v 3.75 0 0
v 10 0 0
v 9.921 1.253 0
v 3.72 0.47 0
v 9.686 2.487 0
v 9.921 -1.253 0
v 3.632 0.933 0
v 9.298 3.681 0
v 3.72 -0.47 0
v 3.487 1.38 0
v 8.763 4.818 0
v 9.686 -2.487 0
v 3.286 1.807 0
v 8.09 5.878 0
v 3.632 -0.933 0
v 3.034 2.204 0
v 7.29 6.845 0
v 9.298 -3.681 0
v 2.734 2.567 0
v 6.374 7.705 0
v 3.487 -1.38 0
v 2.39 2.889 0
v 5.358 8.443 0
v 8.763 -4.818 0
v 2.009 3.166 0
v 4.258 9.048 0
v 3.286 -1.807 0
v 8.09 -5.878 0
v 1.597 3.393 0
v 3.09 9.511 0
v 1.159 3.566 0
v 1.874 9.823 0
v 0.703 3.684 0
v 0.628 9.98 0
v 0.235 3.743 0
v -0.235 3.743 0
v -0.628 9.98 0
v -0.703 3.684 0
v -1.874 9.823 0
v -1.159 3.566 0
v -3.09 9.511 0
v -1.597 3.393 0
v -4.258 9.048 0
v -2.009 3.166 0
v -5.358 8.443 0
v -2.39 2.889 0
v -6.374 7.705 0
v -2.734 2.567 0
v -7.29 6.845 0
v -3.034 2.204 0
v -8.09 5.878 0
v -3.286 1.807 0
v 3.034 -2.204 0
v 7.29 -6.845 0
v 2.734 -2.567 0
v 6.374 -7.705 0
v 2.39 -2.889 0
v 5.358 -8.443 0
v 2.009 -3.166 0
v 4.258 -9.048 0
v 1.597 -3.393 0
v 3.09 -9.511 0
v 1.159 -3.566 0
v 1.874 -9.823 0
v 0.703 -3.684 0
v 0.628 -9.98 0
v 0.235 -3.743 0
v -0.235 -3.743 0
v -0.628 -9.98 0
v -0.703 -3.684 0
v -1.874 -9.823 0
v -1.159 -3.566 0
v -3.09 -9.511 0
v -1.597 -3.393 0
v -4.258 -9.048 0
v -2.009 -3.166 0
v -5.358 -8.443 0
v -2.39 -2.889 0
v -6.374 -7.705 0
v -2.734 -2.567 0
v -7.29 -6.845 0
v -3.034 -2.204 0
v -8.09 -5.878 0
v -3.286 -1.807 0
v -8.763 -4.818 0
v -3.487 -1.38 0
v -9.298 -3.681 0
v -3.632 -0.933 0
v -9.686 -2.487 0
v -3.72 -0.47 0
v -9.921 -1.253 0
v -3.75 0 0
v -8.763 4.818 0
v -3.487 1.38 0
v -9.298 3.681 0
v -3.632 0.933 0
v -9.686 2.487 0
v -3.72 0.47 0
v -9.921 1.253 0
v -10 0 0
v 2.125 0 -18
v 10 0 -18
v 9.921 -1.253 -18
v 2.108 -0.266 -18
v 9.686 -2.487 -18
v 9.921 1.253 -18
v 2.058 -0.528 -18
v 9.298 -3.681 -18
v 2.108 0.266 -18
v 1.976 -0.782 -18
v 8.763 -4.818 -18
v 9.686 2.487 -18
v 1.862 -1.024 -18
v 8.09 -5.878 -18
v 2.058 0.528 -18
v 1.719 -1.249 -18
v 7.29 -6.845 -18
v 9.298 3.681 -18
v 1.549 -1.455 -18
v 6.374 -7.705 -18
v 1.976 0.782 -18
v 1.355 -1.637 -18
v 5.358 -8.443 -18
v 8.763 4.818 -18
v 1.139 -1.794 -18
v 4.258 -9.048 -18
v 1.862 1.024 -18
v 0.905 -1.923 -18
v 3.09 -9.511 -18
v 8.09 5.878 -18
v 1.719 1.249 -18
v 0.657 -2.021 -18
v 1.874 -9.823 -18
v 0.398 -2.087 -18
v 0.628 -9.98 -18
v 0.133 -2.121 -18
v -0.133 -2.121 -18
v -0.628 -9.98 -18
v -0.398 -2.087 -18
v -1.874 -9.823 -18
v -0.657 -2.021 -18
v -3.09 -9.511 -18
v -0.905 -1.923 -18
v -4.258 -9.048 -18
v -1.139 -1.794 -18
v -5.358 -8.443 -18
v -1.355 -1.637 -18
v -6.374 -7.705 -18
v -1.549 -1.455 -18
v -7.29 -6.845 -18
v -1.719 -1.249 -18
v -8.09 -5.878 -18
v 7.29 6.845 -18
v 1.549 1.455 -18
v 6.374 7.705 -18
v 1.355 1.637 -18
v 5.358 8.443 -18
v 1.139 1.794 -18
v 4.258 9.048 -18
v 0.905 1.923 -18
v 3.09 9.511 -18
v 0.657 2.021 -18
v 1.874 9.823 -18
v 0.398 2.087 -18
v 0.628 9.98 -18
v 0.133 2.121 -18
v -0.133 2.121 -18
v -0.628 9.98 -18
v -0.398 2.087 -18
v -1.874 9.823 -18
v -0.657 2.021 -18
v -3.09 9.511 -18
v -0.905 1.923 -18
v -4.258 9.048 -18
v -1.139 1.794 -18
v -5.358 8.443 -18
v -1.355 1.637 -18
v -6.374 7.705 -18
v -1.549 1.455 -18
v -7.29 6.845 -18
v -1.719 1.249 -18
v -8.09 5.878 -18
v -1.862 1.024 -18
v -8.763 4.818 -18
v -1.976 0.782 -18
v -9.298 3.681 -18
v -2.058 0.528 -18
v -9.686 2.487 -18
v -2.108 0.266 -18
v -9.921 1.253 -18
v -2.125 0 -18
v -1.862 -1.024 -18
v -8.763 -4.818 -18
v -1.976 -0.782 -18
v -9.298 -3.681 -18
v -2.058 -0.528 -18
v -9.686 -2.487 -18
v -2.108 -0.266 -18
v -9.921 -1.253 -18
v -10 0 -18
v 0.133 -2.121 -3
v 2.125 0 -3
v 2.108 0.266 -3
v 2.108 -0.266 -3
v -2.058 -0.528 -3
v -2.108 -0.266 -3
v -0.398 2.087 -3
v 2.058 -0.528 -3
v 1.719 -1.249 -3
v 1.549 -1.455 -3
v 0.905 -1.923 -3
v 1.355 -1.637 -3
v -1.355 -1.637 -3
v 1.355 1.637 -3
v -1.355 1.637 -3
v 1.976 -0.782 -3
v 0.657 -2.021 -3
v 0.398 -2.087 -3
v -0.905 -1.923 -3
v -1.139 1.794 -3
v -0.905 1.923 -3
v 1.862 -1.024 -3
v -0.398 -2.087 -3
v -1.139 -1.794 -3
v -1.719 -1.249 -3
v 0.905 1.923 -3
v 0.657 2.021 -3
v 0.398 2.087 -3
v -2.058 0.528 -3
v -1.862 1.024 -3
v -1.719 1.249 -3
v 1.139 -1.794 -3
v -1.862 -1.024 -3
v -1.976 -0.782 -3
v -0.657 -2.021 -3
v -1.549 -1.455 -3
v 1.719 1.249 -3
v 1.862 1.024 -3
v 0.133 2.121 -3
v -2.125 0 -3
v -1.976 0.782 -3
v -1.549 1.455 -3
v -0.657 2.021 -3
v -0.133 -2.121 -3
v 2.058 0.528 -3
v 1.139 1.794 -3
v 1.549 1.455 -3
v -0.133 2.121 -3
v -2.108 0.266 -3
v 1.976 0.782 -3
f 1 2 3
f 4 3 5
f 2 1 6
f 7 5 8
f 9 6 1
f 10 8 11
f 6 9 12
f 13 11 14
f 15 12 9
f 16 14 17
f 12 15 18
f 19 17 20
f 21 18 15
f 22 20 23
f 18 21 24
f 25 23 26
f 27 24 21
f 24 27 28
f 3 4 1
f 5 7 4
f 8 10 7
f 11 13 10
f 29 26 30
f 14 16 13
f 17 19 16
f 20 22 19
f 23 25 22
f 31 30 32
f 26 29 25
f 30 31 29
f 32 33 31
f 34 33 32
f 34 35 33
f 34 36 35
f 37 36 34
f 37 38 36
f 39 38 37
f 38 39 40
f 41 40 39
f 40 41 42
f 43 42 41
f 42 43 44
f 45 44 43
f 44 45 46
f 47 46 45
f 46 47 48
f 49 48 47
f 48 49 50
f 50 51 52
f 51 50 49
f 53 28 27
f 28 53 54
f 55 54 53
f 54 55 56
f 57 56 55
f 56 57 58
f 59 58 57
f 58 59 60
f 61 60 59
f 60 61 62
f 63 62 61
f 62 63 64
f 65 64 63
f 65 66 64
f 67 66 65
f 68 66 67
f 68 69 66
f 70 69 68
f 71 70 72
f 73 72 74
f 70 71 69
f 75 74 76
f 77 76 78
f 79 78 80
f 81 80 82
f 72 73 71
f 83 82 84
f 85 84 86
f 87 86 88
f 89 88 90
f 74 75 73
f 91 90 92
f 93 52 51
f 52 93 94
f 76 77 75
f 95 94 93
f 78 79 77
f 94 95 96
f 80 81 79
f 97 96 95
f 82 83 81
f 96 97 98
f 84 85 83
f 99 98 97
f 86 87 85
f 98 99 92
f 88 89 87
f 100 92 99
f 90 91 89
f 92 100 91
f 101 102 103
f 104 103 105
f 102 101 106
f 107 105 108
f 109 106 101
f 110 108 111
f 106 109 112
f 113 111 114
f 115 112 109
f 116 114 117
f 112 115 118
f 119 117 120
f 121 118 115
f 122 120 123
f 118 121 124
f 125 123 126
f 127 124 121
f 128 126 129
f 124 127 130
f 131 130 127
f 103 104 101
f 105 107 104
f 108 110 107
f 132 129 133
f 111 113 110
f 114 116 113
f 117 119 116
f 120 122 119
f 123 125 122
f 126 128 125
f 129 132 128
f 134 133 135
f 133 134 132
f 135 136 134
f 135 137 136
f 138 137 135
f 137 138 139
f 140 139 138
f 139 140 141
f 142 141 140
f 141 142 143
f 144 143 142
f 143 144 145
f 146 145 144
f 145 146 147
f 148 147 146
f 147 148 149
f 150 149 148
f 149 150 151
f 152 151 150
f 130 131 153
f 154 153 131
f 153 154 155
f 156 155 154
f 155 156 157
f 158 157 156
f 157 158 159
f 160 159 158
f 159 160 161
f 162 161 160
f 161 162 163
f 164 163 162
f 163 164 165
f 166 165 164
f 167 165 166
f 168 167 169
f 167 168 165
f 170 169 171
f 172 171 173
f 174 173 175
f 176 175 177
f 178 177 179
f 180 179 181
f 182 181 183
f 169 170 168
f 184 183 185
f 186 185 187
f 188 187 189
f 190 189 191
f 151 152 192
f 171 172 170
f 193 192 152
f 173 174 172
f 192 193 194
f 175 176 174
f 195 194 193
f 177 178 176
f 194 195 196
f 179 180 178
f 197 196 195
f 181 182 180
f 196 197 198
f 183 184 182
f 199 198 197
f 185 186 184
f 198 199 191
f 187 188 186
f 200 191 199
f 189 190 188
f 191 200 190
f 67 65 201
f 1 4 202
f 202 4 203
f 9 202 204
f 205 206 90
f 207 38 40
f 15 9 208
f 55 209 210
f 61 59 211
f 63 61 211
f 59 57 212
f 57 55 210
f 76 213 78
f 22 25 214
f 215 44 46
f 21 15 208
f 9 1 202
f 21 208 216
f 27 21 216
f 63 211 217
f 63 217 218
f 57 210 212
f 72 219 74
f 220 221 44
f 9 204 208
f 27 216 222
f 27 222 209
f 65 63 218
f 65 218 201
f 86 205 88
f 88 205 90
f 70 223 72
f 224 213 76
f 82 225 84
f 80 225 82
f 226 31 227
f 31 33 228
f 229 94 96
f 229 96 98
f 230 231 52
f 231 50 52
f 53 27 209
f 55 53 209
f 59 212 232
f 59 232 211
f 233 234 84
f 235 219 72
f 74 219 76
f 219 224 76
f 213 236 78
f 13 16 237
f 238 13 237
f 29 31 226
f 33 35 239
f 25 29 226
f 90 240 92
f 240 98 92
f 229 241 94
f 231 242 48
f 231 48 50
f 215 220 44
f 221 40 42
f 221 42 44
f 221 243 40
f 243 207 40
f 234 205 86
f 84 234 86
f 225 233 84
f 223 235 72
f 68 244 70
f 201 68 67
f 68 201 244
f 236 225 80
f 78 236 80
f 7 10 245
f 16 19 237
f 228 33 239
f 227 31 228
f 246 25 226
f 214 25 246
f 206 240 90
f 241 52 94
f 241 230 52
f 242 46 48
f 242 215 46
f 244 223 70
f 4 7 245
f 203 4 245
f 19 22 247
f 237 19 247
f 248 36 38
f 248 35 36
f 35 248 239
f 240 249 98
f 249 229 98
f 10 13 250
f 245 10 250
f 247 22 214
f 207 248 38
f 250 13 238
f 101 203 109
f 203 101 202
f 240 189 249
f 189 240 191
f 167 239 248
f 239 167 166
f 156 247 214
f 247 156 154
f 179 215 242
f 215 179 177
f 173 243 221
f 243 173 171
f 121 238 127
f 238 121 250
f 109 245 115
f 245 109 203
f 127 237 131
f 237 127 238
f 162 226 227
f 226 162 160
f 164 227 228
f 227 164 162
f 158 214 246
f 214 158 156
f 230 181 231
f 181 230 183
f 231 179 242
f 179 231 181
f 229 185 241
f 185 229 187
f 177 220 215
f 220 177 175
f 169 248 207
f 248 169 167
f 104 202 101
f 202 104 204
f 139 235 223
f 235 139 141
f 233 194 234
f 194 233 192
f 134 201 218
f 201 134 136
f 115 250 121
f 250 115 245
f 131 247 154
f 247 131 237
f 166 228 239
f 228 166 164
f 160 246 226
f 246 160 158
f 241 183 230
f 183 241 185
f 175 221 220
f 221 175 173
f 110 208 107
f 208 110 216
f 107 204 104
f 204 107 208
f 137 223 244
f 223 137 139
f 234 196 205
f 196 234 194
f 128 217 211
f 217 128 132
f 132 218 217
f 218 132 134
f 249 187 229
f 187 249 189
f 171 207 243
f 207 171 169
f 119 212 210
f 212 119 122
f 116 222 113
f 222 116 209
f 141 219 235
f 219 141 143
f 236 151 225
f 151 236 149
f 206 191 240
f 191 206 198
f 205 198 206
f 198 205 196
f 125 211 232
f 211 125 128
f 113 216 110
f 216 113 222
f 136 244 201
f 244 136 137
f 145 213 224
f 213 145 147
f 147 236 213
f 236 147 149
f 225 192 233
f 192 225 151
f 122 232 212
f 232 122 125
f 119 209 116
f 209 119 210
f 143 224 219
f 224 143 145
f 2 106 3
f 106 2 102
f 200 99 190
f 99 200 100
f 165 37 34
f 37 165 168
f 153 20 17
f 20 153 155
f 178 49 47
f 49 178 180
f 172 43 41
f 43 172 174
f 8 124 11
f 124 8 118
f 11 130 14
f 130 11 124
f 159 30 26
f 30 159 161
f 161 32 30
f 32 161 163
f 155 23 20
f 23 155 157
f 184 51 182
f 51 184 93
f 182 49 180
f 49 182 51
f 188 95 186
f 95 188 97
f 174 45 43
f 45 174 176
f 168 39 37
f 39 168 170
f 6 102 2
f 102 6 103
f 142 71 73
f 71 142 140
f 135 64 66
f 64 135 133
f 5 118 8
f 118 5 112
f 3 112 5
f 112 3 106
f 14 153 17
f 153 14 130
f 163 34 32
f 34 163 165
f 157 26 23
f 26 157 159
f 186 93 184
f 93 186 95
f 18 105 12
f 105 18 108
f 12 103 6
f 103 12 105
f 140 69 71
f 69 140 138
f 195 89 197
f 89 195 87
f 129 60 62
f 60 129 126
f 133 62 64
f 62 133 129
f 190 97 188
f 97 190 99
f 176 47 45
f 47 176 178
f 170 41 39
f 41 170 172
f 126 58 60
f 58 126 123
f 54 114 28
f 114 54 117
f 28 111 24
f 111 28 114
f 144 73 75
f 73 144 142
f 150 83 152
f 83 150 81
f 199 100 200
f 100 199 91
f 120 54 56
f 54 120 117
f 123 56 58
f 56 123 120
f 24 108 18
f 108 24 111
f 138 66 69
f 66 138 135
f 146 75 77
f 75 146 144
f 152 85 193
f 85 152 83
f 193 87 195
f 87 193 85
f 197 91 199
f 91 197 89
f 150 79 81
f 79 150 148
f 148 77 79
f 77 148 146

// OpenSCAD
$fn = 50;


difference() {
	union() {
		translate(v = [0, 0, -18.0000000000]) {
			cylinder(h = 18, r = 10.0000000000);
		}
	}
	union() {
		translate(v = [0, 0, 0]) {
			rotate(a = [0, 0, 0]) {
				difference() {
					union() {
						#translate(v = [0, 0, -18.0000000000]) {
							cylinder(h = 18, r = 2.0000000000);
						}
						#translate(v = [0, 0, -3]) {
							cylinder(h = 3, r1 = 2.1250000000, r2 = 3.7500000000);
						}
						#translate(v = [0, 0, -18.0000000000]) {
							cylinder(h = 18, r = 2.1250000000);
						}
						#translate(v = [0, 0, -18.0000000000]) {
							cylinder(h = 18, r = 2.0000000000);
						}
					}
					union();
				}
			}
		}
	}
}
